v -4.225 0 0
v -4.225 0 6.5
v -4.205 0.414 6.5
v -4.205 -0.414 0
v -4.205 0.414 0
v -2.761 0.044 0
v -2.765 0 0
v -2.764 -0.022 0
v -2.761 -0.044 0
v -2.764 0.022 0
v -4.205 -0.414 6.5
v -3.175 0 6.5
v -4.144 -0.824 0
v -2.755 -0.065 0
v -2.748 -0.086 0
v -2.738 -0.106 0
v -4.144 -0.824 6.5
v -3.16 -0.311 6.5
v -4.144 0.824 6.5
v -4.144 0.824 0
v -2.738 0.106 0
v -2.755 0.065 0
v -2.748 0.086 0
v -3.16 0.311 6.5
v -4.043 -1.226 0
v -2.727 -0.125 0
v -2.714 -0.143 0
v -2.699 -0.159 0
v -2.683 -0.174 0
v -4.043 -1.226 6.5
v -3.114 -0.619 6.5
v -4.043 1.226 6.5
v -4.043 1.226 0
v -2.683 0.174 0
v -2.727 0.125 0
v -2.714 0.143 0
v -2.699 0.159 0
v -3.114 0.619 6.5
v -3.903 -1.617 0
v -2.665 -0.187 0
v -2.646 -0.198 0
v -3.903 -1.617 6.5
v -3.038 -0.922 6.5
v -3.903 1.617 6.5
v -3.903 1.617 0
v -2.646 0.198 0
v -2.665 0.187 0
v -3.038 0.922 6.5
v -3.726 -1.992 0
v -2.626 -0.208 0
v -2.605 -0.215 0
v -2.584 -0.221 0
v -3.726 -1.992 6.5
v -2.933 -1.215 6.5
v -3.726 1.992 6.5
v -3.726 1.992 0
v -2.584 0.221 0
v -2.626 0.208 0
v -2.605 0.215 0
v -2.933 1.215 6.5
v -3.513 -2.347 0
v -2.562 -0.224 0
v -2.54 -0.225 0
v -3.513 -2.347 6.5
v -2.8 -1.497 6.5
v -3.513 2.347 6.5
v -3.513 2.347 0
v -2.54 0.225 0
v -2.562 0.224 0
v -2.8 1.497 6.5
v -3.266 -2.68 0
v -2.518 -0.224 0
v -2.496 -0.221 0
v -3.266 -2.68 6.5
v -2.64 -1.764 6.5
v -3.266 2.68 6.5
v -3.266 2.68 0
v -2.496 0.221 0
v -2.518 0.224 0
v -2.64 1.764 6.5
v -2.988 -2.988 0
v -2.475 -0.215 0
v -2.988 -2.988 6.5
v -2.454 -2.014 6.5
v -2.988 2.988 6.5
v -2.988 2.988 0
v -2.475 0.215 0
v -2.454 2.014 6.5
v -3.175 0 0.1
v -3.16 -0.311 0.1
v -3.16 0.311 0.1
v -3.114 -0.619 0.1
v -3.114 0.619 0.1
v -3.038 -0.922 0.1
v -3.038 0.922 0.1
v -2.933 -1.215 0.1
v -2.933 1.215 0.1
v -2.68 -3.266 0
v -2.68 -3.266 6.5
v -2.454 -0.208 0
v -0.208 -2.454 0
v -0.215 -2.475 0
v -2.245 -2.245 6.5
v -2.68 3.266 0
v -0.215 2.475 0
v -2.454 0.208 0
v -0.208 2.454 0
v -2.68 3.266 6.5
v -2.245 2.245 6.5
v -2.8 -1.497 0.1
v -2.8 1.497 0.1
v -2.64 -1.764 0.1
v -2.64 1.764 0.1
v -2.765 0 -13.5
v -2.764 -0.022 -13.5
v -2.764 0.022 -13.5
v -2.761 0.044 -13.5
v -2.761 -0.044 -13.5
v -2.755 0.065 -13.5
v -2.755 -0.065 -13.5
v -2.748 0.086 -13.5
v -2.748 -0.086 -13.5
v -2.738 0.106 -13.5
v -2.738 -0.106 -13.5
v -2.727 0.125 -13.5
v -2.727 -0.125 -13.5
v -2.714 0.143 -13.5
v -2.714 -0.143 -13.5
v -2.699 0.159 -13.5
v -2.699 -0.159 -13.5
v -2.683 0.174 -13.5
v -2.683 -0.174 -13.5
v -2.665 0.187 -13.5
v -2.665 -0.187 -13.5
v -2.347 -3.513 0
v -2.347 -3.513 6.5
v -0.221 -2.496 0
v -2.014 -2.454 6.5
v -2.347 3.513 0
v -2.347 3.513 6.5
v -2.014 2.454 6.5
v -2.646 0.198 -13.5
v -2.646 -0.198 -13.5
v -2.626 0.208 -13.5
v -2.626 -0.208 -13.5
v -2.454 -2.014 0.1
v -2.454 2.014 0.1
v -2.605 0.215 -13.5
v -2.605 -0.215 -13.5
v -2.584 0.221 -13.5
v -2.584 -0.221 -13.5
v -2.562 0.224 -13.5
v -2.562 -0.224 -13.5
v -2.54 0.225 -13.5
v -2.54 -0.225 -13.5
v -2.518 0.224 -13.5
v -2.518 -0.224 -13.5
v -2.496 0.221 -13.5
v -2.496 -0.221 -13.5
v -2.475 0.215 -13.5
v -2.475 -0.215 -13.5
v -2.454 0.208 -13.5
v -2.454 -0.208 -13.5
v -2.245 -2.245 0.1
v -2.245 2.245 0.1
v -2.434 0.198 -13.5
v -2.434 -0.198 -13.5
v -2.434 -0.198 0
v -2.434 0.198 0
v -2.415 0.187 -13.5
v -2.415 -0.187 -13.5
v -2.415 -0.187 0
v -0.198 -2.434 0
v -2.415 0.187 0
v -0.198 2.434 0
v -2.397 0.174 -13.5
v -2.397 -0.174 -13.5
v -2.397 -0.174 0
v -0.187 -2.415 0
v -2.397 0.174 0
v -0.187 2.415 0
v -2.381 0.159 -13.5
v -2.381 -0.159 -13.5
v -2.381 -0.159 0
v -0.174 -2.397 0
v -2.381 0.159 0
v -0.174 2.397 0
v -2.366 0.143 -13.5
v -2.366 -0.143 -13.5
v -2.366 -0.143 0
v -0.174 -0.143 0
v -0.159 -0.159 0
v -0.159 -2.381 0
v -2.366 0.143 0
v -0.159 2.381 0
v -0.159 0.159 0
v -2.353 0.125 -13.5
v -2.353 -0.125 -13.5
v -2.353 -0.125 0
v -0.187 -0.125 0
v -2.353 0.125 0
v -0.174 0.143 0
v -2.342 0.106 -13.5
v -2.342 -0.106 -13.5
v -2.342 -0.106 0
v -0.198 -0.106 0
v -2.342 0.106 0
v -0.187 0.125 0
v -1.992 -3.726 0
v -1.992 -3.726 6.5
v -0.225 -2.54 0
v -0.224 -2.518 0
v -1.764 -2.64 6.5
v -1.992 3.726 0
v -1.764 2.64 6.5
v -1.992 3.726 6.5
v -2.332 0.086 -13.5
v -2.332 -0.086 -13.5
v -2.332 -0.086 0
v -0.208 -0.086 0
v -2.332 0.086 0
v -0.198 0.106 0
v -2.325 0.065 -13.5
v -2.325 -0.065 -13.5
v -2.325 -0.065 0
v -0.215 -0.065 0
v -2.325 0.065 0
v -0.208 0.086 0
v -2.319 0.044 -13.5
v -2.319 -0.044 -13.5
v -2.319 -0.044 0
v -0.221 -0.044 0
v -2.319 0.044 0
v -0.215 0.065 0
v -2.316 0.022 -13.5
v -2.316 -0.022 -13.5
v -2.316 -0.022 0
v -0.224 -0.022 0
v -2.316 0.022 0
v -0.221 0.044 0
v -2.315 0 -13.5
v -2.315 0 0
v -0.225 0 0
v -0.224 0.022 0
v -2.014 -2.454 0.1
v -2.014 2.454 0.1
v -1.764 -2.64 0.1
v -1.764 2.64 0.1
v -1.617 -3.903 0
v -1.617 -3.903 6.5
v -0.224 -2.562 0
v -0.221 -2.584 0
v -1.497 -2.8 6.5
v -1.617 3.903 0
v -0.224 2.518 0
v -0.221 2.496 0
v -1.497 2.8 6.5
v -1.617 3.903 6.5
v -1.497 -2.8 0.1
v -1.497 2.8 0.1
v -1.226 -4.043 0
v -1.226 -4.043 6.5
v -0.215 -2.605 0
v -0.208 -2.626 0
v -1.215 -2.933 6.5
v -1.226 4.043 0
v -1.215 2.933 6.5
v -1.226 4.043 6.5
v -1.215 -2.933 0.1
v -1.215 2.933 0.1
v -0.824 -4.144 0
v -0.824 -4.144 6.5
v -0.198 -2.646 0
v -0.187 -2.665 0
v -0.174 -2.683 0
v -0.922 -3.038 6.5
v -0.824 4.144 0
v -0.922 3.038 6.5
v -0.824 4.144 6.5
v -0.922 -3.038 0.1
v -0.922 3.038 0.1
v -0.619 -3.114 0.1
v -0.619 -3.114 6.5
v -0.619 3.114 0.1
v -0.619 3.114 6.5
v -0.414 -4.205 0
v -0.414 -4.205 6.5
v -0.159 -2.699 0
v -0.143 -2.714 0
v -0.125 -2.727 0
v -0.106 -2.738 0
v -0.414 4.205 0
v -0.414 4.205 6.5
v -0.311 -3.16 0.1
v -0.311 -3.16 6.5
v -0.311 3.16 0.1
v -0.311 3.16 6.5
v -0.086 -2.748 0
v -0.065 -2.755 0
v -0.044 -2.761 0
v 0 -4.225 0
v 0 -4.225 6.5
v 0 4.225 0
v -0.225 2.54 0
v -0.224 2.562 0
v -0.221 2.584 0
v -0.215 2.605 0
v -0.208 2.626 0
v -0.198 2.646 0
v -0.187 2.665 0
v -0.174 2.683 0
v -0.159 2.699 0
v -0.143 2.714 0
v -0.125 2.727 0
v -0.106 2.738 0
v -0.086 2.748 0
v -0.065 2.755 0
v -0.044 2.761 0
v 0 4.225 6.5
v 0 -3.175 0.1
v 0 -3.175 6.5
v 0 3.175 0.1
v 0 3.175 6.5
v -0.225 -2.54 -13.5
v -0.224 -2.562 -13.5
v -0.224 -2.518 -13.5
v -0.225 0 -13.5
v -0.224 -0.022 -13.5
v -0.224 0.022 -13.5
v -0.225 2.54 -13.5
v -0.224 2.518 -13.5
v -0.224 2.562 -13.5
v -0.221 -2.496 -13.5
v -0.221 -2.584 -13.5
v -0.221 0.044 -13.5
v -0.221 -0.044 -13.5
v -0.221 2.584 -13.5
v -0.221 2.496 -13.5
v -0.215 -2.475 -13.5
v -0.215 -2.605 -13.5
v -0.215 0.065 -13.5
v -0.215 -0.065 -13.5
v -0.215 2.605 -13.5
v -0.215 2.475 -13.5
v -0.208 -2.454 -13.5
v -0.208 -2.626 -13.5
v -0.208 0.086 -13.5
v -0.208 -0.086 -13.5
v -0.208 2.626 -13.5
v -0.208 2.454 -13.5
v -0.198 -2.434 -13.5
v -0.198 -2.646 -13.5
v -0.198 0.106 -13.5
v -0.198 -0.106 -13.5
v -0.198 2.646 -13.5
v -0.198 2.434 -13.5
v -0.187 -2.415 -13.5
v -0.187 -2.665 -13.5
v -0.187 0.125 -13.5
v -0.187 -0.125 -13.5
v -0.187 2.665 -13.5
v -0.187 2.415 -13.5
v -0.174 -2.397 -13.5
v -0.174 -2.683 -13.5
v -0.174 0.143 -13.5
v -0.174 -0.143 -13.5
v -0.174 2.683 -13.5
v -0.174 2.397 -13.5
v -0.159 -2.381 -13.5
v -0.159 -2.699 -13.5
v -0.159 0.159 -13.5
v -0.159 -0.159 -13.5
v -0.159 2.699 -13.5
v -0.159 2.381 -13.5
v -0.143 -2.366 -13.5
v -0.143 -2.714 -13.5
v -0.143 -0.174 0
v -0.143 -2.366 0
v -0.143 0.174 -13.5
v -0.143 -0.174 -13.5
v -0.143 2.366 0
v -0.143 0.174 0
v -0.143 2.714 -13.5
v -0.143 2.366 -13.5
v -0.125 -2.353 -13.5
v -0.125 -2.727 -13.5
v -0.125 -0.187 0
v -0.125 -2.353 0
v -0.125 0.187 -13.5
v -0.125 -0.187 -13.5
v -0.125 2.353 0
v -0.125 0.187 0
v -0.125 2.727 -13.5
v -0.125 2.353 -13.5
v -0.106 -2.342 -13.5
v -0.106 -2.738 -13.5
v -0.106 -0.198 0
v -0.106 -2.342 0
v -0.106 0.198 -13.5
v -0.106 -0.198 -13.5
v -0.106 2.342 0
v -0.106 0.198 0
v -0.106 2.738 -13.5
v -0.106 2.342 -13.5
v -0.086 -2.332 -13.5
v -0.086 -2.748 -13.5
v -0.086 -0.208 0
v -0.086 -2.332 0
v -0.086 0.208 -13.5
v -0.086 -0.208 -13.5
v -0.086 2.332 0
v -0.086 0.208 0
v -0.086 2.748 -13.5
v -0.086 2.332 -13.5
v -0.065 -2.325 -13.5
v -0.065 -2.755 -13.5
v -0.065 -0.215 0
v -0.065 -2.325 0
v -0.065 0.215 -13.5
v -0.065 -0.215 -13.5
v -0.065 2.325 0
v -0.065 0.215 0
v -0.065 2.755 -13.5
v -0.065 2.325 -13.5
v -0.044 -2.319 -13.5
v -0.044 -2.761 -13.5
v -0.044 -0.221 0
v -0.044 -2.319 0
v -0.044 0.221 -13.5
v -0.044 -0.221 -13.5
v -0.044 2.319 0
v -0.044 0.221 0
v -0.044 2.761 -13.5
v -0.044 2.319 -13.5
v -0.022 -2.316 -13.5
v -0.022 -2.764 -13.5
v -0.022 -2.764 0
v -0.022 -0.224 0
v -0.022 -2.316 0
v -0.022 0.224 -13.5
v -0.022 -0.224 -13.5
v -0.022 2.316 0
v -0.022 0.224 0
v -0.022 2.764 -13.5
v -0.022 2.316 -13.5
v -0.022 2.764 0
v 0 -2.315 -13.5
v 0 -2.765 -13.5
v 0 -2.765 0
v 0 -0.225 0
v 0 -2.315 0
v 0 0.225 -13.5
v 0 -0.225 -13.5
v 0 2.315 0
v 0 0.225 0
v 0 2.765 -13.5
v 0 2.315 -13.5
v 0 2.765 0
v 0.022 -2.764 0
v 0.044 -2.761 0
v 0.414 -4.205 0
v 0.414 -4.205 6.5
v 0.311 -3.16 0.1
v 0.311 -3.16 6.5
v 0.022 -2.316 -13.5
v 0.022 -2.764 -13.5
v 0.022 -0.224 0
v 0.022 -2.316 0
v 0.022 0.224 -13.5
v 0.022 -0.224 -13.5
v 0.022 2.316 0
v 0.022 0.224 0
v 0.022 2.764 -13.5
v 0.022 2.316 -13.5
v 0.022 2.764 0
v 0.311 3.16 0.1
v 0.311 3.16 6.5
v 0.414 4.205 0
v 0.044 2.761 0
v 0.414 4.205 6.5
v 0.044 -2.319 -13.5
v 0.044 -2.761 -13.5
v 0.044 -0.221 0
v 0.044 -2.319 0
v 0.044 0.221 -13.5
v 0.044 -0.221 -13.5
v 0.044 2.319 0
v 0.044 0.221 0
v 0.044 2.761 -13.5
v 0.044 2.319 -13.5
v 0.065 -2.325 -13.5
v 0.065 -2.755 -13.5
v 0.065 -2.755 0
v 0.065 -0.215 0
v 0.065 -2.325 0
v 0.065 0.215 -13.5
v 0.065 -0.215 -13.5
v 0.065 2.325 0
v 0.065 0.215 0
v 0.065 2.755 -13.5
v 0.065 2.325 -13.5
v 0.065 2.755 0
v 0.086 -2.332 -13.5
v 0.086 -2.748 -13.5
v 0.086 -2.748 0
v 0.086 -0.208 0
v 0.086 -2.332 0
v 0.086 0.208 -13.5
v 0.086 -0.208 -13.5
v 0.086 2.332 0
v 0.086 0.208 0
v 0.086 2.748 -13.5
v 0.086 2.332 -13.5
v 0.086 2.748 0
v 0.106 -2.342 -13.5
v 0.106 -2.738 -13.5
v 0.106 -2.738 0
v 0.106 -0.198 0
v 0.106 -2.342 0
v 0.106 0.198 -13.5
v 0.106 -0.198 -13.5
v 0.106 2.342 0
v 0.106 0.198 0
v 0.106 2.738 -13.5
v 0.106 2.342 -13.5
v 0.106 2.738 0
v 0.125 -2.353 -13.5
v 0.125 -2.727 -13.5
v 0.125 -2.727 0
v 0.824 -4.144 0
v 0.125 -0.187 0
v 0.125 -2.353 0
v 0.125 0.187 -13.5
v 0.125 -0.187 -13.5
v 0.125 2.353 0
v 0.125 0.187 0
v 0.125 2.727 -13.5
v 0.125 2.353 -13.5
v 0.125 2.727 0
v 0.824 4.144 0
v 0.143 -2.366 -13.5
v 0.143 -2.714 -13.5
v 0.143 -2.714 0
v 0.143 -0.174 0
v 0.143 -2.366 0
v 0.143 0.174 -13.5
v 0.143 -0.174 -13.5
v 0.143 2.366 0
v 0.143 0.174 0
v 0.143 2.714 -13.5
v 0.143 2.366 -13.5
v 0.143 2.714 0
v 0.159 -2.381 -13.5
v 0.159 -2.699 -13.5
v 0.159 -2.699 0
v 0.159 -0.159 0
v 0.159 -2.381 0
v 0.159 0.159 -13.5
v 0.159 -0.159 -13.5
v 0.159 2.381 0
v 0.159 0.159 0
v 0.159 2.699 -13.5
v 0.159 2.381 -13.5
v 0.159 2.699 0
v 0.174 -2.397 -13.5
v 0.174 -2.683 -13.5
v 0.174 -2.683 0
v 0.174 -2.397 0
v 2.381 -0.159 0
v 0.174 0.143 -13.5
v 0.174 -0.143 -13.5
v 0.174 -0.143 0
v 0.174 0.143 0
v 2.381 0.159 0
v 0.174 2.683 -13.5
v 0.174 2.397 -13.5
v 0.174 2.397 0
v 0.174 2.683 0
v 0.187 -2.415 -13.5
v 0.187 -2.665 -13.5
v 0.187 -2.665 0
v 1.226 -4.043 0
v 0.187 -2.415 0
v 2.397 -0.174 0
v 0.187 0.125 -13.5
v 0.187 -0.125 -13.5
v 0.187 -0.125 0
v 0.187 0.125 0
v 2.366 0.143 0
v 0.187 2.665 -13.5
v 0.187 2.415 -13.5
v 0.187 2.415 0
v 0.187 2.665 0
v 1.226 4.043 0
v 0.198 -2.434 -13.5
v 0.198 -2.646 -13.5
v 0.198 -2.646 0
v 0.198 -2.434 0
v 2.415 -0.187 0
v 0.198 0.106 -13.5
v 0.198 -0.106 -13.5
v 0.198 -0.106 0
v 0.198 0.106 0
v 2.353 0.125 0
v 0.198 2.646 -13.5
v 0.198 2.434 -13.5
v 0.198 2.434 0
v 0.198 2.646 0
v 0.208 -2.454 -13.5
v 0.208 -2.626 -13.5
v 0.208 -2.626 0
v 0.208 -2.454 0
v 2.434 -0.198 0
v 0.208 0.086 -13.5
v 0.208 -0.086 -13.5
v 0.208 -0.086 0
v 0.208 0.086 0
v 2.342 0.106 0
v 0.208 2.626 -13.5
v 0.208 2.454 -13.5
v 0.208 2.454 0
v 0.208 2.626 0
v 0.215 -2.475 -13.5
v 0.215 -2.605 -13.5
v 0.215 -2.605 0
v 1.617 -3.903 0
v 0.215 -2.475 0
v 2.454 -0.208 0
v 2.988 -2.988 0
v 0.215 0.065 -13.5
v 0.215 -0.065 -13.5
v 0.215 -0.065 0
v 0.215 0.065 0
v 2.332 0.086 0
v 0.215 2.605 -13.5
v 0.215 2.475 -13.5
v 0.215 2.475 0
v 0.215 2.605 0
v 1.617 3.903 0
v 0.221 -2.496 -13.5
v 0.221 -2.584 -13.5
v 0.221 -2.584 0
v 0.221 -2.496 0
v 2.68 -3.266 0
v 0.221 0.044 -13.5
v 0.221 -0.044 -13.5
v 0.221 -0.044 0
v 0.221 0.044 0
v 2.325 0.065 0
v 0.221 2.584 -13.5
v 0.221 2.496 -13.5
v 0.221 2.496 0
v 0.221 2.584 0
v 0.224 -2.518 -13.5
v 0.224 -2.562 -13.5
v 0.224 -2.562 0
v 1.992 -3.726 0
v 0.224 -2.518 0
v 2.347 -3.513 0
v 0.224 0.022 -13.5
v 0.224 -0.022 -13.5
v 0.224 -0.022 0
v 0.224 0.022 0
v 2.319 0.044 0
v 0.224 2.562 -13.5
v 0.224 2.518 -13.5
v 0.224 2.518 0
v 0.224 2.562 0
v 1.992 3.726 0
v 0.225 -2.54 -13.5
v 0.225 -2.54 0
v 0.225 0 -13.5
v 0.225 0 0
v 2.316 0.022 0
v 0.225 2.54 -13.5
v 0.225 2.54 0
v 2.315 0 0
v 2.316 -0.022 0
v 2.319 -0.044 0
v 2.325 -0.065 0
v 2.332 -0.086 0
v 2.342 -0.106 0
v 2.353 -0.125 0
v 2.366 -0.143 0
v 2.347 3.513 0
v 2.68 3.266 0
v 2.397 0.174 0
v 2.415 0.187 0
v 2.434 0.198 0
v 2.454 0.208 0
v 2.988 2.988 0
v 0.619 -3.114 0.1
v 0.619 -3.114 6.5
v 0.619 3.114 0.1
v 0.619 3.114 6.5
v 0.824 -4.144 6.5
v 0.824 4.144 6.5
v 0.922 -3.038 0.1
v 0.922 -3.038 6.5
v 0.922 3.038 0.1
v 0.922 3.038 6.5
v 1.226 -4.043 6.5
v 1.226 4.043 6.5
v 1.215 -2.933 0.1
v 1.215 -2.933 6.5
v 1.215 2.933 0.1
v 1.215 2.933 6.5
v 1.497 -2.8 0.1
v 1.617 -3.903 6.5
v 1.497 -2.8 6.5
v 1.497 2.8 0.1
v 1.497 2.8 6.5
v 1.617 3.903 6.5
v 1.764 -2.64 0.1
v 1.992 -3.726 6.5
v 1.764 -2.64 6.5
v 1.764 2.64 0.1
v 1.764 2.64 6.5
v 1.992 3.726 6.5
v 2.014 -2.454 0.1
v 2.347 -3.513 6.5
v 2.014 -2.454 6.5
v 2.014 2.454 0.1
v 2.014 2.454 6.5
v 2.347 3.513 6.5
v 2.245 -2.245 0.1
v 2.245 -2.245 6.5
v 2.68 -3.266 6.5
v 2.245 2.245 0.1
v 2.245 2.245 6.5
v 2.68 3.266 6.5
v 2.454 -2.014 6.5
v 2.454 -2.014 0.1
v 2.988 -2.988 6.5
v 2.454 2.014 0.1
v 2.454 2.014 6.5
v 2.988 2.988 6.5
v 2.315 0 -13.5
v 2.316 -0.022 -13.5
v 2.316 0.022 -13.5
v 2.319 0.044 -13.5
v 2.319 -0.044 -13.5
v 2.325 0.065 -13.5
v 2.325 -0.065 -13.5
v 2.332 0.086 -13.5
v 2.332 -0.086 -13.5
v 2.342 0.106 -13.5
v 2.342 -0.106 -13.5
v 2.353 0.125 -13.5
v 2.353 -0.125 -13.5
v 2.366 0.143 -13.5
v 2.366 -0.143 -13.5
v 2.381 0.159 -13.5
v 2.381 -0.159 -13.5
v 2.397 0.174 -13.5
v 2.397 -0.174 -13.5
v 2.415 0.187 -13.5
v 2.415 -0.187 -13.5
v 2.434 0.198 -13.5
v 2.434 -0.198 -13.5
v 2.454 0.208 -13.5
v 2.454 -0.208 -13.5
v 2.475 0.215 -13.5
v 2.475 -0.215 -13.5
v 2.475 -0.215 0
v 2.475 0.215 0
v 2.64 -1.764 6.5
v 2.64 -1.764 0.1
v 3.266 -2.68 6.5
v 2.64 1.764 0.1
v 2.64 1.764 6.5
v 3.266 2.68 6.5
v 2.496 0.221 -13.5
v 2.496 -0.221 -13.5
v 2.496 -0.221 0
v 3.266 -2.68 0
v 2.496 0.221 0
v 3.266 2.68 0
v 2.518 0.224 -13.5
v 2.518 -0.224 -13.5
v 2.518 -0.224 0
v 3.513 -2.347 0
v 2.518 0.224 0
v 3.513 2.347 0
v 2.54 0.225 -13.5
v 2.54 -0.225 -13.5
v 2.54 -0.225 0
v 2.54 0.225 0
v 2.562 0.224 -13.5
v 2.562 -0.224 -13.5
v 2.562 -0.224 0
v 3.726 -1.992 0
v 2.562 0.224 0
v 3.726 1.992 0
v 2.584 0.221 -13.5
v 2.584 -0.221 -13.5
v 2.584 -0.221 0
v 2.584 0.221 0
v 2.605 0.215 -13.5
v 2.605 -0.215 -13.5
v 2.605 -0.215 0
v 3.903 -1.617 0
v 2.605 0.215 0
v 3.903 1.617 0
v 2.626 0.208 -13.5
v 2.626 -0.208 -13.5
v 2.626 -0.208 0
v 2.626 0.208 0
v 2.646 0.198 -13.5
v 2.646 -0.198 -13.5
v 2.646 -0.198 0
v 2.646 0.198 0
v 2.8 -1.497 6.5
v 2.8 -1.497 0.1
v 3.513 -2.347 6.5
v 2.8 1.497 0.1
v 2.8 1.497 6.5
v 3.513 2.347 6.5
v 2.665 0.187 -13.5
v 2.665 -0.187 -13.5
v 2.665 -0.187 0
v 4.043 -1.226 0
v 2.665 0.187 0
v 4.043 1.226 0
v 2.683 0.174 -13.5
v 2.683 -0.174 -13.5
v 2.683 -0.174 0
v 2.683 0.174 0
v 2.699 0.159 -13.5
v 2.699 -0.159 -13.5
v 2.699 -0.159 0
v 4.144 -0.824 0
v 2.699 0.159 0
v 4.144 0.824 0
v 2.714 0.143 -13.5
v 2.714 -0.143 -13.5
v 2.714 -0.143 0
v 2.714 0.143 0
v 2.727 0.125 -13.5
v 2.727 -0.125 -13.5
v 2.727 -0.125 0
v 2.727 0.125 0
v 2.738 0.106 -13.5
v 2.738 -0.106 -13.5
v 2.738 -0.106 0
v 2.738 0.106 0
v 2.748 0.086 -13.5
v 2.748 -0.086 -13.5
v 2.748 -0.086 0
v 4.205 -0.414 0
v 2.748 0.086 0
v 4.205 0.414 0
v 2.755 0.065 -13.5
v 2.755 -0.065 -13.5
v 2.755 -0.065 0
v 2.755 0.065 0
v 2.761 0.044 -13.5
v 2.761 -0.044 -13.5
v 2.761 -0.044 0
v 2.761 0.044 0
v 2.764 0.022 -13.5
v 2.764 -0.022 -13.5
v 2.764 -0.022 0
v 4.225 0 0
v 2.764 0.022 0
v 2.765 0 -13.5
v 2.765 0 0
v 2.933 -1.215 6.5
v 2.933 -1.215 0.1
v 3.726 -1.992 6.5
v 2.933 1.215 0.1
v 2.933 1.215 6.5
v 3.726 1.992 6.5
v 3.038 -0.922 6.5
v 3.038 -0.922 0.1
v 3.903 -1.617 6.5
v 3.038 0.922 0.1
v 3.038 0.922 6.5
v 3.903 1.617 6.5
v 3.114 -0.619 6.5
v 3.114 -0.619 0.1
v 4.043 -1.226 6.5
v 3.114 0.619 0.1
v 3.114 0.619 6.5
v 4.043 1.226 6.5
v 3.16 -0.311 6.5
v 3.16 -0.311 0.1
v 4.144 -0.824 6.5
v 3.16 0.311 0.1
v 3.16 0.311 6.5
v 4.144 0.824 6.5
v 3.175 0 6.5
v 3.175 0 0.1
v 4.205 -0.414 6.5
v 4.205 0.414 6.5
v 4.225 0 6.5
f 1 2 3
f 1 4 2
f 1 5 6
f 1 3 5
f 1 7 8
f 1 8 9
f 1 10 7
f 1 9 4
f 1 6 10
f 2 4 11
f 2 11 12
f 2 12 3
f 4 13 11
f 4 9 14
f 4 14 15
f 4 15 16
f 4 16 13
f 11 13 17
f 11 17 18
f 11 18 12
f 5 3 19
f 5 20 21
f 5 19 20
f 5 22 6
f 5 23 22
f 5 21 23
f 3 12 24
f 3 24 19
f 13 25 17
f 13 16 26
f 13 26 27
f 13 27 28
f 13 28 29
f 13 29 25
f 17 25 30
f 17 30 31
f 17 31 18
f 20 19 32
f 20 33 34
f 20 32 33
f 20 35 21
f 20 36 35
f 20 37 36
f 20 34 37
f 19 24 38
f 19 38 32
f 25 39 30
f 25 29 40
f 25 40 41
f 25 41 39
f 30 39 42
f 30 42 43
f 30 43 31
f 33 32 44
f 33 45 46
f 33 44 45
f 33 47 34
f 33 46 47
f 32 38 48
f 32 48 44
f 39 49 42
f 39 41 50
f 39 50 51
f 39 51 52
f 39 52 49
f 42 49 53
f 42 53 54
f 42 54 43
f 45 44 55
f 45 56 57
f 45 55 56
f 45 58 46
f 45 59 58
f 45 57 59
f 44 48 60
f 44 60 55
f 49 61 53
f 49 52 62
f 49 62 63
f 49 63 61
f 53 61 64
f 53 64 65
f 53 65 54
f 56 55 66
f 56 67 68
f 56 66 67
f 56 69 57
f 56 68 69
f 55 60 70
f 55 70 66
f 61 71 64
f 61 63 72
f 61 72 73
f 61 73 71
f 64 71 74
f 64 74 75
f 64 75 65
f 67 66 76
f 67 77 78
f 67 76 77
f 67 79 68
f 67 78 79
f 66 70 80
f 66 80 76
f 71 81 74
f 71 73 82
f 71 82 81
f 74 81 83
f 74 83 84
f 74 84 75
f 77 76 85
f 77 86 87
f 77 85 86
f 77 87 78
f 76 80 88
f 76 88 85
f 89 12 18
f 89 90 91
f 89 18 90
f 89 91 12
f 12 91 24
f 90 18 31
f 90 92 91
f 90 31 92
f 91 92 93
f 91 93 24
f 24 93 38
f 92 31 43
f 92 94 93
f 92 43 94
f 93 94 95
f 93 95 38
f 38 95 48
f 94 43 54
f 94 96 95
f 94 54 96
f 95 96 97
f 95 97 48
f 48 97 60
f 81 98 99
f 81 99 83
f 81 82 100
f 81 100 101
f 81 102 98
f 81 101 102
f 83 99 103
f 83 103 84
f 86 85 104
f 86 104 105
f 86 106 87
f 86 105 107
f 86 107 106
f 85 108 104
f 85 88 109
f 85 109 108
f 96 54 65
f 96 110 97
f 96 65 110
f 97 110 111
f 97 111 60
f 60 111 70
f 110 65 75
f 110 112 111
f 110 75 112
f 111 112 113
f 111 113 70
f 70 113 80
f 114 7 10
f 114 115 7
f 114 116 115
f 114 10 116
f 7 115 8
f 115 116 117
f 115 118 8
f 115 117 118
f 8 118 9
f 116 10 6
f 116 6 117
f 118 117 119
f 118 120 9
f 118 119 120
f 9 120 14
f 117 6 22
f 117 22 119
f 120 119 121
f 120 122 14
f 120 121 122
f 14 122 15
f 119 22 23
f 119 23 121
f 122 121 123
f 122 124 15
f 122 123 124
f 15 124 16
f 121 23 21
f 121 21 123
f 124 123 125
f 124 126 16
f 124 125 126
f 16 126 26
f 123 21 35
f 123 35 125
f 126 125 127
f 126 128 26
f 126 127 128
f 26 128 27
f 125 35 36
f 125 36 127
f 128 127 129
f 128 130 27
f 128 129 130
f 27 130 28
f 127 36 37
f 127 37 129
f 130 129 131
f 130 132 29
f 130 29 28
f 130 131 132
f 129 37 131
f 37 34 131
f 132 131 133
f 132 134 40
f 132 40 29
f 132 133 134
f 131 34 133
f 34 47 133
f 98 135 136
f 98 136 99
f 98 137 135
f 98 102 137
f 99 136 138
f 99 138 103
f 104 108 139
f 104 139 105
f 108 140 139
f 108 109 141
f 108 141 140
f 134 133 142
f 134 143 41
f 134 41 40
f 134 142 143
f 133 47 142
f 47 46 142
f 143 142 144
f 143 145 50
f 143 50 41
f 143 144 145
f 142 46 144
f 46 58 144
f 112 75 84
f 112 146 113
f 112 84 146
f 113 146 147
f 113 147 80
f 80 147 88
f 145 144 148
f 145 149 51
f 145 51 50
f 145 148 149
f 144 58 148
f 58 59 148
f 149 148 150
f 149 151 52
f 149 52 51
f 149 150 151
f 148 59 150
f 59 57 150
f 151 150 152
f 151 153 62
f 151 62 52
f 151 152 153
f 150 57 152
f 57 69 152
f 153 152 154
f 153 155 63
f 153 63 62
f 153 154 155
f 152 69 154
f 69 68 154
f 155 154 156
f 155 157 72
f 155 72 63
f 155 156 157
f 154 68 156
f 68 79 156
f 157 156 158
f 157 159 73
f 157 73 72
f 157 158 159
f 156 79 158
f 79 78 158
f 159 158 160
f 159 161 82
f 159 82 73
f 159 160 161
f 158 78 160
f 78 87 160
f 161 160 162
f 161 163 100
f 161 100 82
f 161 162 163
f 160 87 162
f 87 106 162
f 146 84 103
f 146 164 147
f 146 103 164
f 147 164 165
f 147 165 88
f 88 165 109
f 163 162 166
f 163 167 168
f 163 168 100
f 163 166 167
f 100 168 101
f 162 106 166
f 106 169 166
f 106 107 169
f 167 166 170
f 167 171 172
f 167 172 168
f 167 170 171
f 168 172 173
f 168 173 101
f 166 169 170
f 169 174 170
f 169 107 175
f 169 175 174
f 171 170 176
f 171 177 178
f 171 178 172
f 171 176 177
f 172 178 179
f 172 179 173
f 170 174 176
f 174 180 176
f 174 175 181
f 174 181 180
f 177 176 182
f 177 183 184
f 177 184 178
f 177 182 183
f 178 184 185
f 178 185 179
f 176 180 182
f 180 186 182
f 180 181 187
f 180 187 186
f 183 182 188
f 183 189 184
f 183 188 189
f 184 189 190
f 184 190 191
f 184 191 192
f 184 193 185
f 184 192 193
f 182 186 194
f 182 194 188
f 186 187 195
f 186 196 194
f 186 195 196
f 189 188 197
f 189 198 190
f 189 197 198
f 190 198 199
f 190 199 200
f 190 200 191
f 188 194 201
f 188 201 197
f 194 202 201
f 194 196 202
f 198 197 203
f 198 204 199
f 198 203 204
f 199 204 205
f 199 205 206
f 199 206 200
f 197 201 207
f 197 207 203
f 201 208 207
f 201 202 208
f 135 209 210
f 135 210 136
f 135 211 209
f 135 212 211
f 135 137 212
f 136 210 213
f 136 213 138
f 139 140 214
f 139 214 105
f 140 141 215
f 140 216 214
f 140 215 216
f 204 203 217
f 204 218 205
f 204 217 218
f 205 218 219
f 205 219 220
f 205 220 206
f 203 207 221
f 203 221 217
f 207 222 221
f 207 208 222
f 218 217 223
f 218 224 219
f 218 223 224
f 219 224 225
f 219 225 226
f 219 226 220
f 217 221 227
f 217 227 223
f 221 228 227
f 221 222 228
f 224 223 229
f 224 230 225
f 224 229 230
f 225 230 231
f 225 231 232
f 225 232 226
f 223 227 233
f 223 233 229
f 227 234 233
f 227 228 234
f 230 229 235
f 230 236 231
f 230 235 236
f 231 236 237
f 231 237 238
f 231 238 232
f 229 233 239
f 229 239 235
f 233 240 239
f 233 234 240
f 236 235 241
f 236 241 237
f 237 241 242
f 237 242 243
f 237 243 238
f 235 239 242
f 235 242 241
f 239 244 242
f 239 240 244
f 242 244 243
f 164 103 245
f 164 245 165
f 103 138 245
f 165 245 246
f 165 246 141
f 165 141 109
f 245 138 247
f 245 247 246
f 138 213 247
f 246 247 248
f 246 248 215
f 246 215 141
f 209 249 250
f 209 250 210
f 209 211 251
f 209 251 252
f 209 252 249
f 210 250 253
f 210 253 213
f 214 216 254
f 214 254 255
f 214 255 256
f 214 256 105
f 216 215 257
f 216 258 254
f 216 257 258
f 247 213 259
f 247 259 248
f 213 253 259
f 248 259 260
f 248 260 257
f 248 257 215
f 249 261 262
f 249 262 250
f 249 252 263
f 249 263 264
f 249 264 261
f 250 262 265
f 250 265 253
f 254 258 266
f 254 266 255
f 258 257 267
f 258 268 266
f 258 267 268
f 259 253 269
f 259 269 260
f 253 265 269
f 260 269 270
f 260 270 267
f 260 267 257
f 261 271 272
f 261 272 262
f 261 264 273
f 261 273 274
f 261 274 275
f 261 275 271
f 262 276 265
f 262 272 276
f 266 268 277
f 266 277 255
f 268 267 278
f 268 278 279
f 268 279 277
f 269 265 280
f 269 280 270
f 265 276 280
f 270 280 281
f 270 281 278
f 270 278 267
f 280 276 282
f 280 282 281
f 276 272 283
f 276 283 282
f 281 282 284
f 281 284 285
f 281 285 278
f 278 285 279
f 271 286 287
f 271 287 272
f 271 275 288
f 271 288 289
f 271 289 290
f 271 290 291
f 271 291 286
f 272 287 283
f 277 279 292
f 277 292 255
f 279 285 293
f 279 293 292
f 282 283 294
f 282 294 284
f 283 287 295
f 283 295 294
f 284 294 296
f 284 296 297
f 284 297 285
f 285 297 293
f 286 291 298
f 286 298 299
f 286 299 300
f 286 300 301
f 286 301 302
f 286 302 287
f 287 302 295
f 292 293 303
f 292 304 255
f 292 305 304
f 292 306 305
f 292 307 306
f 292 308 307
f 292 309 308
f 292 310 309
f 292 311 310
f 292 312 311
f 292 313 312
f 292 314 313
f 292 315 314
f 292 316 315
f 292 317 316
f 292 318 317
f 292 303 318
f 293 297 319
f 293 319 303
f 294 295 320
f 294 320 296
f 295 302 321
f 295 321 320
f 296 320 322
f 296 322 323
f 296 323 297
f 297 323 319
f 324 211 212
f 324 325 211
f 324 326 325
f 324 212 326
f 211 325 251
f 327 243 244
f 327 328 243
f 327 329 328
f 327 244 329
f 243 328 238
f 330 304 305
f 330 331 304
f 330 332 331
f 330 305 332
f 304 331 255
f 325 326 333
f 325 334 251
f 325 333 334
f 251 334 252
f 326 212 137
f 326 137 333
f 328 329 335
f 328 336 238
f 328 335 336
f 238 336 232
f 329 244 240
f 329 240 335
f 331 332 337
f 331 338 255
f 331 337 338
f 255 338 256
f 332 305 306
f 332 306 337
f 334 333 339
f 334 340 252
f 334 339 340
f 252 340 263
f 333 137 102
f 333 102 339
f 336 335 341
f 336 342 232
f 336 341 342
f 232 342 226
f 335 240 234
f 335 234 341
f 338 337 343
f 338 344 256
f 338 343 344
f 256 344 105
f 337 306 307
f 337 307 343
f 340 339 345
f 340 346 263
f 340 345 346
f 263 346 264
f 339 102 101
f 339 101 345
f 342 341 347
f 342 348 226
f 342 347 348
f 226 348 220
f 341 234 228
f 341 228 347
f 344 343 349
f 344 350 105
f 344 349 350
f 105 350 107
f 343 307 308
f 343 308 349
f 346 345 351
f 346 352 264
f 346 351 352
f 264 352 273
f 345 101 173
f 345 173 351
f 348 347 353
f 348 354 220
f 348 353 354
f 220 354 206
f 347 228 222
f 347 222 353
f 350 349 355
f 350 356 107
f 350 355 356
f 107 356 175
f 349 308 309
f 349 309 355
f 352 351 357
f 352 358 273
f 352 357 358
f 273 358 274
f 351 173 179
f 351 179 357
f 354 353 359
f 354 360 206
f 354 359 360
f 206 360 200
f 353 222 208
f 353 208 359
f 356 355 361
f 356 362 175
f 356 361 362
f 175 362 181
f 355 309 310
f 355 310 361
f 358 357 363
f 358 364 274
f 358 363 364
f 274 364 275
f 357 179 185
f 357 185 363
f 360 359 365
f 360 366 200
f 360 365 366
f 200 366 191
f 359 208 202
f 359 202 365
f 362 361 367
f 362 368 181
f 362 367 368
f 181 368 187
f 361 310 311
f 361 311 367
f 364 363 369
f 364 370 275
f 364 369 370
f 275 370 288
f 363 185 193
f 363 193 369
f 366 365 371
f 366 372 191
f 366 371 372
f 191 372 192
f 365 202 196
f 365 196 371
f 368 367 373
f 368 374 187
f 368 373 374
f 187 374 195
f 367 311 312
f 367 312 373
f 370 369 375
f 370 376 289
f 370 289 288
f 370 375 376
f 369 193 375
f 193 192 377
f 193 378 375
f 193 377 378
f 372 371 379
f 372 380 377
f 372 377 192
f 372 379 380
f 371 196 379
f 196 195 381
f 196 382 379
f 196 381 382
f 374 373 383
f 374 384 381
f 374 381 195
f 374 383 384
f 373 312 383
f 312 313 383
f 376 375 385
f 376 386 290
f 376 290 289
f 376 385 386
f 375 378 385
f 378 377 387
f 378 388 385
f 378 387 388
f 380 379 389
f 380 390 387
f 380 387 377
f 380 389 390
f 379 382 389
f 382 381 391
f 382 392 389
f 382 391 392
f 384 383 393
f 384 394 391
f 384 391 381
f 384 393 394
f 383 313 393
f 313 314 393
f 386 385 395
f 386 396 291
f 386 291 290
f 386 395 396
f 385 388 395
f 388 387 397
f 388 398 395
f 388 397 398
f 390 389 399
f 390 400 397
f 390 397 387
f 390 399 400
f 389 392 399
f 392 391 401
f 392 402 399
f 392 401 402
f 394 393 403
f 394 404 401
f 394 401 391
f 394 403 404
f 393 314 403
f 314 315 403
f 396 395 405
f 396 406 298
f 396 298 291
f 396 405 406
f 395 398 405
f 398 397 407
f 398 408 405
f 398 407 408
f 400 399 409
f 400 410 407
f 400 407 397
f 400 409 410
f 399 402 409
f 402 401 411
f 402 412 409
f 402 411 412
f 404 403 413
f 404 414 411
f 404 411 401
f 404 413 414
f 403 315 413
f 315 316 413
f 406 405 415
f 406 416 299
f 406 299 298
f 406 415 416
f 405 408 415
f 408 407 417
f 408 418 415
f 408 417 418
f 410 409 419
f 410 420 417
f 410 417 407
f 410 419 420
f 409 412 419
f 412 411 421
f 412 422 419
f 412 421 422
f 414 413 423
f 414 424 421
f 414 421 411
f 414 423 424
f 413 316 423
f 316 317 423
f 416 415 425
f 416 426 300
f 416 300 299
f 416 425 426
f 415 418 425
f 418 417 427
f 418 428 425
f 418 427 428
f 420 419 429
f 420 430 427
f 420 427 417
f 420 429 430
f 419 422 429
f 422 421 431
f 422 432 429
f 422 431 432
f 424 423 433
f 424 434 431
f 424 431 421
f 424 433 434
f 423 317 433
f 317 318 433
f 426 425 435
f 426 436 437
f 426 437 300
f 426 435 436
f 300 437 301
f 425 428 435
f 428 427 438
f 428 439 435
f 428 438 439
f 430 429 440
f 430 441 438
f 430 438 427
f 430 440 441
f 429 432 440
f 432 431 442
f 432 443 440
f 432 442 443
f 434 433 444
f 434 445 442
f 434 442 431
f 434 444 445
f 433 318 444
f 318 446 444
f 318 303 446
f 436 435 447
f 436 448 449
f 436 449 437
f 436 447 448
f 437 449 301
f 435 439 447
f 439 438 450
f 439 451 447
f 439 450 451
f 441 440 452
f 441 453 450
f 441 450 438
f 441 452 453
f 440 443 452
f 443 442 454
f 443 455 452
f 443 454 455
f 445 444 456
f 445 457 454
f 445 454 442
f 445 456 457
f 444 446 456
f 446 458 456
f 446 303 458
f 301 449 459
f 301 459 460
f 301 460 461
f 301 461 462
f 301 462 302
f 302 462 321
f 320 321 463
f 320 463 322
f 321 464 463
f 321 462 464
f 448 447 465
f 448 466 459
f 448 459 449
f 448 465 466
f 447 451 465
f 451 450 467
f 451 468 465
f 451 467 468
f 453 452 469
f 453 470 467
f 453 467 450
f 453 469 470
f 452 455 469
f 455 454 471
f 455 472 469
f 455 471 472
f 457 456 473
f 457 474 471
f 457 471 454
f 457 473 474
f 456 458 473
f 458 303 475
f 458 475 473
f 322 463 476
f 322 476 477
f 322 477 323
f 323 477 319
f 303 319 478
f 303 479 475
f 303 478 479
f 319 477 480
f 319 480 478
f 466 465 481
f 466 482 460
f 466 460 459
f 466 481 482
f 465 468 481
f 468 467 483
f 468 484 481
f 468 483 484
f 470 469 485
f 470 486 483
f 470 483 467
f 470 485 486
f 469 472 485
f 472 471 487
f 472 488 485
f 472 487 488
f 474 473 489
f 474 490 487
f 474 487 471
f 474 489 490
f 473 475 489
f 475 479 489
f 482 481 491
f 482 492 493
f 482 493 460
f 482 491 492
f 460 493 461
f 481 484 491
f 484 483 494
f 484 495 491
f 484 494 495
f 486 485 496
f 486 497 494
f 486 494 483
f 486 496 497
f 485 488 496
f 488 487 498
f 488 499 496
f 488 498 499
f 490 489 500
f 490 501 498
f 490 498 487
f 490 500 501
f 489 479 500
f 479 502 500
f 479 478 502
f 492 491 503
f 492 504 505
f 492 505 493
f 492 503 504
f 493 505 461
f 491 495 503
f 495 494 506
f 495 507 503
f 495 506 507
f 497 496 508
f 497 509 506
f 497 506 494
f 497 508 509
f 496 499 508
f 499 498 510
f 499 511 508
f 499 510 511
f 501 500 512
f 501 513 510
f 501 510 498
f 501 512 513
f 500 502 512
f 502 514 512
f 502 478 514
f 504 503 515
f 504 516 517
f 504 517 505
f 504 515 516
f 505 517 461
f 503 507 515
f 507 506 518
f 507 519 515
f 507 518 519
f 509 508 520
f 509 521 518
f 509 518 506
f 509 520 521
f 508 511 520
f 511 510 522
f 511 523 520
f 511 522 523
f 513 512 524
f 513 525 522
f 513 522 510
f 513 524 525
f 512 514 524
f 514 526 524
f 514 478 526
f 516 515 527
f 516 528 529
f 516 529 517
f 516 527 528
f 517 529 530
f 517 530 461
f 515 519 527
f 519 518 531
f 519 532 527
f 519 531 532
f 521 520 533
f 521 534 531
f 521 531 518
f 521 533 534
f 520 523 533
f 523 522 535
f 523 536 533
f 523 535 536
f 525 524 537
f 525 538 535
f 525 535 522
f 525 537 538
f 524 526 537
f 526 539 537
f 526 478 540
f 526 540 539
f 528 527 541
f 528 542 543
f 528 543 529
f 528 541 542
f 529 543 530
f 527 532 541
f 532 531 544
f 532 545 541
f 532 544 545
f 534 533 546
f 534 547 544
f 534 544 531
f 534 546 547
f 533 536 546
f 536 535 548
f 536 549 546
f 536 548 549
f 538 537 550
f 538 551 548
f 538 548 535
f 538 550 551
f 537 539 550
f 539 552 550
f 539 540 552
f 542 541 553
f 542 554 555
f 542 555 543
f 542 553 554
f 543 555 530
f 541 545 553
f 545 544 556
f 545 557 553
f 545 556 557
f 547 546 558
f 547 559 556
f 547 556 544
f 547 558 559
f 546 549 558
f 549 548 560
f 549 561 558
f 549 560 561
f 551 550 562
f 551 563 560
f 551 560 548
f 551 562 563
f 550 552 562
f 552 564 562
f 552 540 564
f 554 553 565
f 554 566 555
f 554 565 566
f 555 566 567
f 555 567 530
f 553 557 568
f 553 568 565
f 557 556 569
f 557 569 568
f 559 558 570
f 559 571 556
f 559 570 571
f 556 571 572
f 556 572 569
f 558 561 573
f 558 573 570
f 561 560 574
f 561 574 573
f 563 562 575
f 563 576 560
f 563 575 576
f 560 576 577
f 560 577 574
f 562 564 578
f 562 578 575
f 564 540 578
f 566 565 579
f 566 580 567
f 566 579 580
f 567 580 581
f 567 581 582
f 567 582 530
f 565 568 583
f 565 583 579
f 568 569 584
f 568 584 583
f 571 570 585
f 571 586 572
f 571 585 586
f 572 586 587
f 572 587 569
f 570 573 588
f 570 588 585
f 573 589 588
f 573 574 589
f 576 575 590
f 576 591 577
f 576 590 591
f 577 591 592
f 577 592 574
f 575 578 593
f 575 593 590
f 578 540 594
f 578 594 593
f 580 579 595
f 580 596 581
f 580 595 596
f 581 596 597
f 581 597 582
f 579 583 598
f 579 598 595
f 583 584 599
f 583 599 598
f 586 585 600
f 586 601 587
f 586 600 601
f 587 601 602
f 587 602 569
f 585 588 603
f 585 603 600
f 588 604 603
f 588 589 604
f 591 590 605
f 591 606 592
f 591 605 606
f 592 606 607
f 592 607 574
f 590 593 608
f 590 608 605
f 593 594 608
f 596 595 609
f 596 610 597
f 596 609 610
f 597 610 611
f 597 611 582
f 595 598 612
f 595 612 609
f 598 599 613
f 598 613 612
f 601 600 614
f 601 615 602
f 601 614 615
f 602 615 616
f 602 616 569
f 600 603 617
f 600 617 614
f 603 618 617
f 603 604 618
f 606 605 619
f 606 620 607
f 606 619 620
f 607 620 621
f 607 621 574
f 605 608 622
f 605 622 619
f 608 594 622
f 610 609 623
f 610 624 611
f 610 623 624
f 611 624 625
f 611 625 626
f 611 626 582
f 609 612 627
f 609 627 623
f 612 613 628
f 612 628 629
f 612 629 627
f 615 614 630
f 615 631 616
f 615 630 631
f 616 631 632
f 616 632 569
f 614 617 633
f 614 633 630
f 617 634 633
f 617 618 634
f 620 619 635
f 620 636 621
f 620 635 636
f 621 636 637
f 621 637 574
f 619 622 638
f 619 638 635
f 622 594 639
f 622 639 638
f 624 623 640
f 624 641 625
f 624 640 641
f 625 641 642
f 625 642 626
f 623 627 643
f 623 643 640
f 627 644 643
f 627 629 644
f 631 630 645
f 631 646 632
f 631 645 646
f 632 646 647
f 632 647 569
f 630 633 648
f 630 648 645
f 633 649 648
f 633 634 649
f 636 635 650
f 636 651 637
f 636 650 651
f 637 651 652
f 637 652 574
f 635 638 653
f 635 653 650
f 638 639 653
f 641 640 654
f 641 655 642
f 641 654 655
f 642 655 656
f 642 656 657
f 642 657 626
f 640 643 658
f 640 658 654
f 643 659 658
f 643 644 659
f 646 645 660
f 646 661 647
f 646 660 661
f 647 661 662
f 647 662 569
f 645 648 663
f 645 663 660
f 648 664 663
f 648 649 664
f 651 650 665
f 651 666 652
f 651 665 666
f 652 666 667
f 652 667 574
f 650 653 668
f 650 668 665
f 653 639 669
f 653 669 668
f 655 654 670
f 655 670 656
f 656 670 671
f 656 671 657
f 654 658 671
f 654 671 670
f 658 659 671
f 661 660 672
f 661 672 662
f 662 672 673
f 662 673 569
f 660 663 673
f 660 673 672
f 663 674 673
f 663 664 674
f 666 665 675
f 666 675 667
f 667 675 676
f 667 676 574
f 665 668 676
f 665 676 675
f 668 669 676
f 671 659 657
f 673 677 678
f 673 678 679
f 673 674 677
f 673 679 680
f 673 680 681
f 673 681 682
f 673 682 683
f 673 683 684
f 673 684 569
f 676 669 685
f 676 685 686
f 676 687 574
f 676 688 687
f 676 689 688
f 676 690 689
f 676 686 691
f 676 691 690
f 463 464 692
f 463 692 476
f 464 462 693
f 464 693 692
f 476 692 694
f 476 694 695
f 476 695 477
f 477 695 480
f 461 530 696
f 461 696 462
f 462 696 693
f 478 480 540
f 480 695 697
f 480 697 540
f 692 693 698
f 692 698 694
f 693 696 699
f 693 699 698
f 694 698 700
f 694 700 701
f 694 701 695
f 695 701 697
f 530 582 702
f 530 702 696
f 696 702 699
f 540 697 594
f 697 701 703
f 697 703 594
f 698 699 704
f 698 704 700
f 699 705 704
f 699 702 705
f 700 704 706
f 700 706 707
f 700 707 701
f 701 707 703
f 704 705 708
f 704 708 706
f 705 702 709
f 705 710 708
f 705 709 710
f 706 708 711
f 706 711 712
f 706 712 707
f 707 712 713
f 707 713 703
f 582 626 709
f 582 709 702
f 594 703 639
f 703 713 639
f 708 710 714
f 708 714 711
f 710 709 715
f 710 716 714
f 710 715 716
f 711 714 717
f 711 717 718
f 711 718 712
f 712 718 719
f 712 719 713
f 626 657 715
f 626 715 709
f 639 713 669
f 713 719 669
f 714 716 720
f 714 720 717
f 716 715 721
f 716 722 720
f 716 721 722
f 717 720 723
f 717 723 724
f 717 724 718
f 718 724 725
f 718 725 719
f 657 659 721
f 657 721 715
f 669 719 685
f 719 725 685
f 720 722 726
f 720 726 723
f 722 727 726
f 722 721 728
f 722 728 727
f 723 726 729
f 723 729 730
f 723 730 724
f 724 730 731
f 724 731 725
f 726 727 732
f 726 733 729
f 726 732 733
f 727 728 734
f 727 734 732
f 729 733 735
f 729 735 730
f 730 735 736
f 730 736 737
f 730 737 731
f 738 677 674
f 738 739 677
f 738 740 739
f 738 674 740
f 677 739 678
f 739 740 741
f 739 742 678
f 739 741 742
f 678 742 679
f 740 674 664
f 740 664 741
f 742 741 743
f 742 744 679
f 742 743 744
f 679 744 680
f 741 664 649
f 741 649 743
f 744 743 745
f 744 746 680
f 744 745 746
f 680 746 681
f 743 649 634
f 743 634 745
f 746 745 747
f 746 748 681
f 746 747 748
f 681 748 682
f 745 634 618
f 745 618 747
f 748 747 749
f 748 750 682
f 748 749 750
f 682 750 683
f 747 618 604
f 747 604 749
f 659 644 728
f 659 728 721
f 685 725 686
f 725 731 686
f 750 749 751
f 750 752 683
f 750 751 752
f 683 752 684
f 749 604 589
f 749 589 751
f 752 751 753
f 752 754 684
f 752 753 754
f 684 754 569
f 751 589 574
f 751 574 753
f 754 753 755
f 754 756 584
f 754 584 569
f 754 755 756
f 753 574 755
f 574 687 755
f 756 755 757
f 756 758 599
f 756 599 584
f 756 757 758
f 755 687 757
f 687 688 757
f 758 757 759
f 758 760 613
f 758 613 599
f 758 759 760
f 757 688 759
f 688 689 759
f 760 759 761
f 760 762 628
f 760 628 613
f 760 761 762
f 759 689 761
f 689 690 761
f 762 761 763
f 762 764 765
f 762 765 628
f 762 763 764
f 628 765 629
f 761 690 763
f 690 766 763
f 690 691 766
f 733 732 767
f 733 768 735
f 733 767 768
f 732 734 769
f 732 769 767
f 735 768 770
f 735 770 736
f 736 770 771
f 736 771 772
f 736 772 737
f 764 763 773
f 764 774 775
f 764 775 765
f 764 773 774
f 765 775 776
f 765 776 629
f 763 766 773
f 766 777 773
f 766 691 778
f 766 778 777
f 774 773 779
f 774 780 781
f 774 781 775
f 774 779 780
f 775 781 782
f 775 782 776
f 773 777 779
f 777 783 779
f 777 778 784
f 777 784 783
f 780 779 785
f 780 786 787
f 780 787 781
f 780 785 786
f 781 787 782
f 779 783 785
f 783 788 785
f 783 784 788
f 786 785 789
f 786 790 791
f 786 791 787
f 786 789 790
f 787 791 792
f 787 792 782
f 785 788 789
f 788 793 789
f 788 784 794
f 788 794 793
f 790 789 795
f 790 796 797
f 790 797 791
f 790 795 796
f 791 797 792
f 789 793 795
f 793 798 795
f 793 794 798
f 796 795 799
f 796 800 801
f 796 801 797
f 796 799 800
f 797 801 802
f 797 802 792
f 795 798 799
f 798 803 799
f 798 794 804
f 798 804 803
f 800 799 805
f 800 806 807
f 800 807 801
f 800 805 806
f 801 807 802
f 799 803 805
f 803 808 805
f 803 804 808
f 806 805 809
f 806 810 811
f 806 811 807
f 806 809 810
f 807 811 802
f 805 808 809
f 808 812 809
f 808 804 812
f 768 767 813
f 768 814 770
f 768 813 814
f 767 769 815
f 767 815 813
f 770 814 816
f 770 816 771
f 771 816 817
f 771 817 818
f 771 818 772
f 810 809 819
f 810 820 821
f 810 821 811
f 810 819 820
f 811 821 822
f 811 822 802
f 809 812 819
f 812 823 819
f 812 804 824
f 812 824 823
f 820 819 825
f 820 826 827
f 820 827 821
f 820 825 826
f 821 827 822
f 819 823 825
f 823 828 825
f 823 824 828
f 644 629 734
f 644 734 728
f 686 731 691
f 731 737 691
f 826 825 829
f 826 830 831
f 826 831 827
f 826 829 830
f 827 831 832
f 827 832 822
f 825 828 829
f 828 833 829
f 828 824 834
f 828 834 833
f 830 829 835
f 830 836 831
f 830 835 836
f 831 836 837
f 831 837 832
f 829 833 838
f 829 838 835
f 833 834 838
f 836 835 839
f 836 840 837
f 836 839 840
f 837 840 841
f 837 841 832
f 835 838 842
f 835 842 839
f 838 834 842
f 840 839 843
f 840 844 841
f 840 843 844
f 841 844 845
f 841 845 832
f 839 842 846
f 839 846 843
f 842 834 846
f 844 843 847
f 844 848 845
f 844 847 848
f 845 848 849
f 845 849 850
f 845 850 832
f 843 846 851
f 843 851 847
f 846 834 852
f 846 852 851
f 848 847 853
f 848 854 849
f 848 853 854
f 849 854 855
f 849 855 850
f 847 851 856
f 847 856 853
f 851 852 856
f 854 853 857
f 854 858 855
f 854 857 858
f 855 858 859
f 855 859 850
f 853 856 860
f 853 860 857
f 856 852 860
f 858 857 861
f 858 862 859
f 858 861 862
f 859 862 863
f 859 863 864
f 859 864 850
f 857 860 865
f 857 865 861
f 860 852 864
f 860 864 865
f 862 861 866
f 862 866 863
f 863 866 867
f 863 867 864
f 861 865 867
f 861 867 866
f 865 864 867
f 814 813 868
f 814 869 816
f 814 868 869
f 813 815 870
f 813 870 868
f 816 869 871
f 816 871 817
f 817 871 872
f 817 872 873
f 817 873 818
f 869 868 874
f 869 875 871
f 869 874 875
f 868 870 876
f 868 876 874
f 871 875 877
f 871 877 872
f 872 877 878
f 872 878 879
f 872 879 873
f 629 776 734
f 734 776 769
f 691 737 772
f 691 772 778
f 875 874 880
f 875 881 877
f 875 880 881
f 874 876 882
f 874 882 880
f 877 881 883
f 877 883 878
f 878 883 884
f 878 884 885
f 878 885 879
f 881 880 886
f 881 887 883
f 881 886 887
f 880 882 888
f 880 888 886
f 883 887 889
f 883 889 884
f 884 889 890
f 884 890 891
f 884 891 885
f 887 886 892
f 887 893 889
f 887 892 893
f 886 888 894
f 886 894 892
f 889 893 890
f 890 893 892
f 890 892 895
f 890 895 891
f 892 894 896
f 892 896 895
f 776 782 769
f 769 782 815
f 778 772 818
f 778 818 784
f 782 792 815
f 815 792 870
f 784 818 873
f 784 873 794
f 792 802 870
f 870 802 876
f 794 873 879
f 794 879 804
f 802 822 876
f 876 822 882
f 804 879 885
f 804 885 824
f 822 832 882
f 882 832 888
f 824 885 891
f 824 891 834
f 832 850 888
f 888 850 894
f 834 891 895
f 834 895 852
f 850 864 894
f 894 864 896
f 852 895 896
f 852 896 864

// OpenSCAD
//
// IQ80xL photosensor
//
$fn = 64;

can_dia = 8.45;
win_dia = 6.35;
can_hgt = 6.5;

pin_dia = 0.45;
pin_len = 13.5;

pin_off = 5.08/2;

module pin_at( x, y) {
  translate( [x, y, -pin_len])
    color("gold")
    cylinder( d=pin_dia, h=pin_len);
}

module can() {
  color("grey") {
    difference() {
      cylinder( h=can_hgt, d=can_dia);
      translate( [0, 0, 0.1])
	cylinder( h=can_hgt, d=win_dia);
    }
  }
  translate( [0, 0, can_hgt-0.1])
    % cylinder( d=win_dia, h=0.1);
}

module pkg() {
  can();
  pin_at( -2.54, 0);
  pin_at( +2.54, 0);
  pin_at( 0, -2.54);
  pin_at( 0, +2.54);
  pin_at( 0, 0);
}

pkg();
